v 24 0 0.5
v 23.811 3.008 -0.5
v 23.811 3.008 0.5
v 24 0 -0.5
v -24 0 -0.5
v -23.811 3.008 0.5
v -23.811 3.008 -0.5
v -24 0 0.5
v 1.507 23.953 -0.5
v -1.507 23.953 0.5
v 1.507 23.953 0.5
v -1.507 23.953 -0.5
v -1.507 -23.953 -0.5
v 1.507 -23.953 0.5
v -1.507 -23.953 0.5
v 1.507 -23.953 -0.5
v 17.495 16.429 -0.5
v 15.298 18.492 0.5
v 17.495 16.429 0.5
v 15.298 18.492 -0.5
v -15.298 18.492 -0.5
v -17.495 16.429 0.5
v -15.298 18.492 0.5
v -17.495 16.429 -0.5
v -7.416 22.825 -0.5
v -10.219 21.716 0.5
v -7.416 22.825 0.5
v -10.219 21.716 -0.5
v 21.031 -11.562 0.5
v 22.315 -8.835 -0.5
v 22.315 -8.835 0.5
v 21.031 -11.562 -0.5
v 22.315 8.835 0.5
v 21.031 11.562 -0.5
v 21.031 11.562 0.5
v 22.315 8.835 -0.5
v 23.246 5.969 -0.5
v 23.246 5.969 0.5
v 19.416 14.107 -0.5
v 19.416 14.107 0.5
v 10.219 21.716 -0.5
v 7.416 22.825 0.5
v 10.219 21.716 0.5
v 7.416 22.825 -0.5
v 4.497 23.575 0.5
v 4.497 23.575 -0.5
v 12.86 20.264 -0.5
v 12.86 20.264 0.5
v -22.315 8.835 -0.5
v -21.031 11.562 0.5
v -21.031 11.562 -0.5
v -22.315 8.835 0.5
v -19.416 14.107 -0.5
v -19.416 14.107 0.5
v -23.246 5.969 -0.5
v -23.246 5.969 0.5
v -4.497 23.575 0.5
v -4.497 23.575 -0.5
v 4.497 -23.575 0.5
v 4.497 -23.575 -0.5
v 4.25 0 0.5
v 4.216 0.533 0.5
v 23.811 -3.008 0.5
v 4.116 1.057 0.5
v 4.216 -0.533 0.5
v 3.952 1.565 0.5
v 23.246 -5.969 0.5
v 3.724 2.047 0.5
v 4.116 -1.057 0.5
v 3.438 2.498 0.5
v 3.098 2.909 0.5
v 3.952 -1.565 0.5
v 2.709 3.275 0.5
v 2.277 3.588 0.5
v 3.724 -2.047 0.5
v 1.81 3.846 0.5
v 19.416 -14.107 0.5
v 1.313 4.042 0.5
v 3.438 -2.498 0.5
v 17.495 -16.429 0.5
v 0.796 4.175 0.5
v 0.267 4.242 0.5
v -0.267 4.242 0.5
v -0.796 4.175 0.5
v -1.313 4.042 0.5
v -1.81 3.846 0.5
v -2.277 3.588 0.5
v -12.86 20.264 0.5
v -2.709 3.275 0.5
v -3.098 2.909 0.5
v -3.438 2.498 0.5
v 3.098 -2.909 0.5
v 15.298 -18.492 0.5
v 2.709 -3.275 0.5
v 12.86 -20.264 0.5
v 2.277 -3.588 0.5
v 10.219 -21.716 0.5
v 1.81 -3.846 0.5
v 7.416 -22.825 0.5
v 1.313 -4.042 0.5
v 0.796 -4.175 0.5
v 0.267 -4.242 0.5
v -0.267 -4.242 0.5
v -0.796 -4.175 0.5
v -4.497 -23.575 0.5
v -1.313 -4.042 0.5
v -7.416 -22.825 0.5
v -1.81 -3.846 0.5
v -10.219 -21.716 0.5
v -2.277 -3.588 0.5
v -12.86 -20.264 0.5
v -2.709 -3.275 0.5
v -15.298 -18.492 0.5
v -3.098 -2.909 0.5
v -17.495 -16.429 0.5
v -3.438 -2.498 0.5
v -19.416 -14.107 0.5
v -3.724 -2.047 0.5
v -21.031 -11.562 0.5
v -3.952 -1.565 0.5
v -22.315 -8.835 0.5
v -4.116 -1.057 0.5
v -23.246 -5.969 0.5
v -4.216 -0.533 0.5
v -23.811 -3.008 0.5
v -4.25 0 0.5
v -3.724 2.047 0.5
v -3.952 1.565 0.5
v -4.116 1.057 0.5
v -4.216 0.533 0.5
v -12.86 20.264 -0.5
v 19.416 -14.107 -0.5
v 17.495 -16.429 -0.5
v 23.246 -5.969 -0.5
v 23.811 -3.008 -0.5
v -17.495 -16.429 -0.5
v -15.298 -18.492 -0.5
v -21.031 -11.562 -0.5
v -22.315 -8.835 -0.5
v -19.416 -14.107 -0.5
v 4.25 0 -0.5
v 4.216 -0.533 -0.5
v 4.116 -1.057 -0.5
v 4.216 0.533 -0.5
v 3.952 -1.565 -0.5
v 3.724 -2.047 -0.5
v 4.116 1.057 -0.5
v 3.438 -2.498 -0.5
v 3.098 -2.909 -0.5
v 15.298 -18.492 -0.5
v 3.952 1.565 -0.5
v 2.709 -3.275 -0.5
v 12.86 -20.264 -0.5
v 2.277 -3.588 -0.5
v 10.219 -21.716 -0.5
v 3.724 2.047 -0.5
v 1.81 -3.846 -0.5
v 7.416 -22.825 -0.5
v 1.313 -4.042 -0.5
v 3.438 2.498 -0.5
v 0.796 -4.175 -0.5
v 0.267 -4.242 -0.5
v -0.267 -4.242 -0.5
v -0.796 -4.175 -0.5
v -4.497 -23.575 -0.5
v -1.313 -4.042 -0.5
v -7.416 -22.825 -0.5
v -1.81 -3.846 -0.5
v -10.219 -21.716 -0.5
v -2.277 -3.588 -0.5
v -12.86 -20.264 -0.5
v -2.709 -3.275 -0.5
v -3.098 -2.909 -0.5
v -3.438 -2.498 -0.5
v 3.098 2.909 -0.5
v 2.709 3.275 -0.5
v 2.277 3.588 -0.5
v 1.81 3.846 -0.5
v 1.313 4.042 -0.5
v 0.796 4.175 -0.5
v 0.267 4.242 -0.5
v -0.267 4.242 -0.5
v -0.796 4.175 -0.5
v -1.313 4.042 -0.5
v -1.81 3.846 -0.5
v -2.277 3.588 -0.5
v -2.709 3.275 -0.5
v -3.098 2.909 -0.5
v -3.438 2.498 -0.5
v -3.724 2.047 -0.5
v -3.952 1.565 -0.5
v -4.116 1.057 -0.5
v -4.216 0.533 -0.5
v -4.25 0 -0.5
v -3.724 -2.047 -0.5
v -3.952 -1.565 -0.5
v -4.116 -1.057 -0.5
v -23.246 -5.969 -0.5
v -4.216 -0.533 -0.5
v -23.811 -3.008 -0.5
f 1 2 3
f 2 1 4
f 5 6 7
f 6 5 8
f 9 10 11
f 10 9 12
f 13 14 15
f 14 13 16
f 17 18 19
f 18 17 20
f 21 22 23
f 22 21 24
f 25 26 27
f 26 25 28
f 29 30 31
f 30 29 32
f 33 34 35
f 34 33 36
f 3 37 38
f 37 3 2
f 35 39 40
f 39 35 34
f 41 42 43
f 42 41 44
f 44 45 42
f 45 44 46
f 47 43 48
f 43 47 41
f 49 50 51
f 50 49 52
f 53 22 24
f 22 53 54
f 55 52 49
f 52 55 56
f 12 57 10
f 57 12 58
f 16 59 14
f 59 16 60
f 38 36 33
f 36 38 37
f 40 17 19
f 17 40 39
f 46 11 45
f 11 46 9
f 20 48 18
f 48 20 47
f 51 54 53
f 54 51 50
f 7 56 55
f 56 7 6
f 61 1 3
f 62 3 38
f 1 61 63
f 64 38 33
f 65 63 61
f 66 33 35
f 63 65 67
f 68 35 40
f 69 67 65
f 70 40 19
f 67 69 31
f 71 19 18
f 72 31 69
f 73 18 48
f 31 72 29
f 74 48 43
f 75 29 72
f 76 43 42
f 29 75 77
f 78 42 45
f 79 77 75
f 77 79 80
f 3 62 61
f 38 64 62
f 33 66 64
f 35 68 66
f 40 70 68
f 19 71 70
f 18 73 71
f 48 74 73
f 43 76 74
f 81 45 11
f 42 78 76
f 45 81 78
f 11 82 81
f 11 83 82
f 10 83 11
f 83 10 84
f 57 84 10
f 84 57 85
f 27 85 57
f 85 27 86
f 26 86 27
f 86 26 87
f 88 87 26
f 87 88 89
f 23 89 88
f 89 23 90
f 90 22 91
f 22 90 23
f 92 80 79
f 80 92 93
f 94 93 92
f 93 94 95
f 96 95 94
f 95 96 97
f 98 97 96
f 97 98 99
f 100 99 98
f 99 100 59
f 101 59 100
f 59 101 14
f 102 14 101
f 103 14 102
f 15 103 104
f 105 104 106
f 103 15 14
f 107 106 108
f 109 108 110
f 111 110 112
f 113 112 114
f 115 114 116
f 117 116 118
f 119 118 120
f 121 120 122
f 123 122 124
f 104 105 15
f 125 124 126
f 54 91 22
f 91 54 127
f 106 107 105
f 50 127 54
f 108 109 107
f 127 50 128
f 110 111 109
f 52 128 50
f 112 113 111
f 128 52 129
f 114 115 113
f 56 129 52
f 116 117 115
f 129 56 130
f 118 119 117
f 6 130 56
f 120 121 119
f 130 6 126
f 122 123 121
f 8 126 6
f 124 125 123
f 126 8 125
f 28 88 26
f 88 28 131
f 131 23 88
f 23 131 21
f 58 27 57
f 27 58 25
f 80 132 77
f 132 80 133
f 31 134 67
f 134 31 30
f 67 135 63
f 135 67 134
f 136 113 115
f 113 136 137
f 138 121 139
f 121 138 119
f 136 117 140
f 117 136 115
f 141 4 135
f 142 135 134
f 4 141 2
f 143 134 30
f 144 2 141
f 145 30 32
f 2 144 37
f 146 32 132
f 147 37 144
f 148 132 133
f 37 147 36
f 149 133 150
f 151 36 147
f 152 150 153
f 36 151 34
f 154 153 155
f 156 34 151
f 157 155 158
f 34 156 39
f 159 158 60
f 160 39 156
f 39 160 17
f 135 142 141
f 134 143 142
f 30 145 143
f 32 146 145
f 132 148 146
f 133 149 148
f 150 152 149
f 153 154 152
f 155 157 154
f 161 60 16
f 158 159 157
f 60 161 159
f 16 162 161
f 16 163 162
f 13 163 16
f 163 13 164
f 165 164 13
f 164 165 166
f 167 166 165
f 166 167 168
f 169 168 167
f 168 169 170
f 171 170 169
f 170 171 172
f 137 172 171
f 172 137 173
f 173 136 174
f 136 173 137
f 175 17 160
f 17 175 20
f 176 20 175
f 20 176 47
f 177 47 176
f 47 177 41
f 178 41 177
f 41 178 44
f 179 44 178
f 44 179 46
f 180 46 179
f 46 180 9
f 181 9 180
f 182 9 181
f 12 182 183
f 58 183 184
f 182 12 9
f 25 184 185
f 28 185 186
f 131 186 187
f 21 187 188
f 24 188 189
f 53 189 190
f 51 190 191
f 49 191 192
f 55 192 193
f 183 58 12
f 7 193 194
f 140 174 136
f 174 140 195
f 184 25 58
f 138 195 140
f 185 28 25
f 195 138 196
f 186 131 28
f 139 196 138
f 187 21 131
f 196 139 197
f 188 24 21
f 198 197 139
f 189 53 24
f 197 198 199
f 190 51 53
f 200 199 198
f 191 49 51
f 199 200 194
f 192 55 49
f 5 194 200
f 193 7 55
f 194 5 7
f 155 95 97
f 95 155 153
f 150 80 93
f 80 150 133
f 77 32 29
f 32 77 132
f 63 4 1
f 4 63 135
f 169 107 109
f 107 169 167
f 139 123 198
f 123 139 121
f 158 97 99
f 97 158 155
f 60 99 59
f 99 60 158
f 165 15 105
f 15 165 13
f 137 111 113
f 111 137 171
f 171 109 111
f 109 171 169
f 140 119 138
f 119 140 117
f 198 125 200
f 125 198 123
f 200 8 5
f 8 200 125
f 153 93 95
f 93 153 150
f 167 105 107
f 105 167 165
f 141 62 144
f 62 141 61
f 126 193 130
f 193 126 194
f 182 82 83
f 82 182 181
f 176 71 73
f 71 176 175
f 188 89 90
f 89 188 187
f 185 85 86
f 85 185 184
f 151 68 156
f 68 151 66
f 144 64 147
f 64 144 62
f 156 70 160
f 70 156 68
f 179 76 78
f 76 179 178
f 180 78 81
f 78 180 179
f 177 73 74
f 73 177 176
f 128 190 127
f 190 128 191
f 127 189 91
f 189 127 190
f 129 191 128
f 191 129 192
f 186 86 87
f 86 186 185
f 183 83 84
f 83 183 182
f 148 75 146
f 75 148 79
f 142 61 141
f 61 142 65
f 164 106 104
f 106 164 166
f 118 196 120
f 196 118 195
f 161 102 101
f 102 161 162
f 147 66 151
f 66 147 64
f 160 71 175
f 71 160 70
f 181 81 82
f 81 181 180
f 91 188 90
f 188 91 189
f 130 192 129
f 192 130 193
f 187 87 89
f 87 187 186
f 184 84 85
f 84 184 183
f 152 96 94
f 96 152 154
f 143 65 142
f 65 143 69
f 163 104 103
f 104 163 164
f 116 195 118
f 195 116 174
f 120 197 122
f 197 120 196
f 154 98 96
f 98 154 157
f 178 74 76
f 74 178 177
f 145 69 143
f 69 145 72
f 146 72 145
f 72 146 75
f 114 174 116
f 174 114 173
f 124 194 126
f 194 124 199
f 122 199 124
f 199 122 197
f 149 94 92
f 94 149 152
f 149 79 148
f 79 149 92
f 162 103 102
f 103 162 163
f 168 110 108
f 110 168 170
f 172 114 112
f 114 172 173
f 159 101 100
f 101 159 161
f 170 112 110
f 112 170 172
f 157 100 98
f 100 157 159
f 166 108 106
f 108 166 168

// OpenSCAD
$fn = 50;


difference() {
	union() {
		translate(v = [0, 0, -0.5000000000]) {
			cylinder(h = 1, r = 24.0000000000);
		}
	}
	union() {
		translate(v = [0, 0, -100.0000000000]) {
			cylinder(h = 200, r = 4.2500000000);
		}
	}
}
